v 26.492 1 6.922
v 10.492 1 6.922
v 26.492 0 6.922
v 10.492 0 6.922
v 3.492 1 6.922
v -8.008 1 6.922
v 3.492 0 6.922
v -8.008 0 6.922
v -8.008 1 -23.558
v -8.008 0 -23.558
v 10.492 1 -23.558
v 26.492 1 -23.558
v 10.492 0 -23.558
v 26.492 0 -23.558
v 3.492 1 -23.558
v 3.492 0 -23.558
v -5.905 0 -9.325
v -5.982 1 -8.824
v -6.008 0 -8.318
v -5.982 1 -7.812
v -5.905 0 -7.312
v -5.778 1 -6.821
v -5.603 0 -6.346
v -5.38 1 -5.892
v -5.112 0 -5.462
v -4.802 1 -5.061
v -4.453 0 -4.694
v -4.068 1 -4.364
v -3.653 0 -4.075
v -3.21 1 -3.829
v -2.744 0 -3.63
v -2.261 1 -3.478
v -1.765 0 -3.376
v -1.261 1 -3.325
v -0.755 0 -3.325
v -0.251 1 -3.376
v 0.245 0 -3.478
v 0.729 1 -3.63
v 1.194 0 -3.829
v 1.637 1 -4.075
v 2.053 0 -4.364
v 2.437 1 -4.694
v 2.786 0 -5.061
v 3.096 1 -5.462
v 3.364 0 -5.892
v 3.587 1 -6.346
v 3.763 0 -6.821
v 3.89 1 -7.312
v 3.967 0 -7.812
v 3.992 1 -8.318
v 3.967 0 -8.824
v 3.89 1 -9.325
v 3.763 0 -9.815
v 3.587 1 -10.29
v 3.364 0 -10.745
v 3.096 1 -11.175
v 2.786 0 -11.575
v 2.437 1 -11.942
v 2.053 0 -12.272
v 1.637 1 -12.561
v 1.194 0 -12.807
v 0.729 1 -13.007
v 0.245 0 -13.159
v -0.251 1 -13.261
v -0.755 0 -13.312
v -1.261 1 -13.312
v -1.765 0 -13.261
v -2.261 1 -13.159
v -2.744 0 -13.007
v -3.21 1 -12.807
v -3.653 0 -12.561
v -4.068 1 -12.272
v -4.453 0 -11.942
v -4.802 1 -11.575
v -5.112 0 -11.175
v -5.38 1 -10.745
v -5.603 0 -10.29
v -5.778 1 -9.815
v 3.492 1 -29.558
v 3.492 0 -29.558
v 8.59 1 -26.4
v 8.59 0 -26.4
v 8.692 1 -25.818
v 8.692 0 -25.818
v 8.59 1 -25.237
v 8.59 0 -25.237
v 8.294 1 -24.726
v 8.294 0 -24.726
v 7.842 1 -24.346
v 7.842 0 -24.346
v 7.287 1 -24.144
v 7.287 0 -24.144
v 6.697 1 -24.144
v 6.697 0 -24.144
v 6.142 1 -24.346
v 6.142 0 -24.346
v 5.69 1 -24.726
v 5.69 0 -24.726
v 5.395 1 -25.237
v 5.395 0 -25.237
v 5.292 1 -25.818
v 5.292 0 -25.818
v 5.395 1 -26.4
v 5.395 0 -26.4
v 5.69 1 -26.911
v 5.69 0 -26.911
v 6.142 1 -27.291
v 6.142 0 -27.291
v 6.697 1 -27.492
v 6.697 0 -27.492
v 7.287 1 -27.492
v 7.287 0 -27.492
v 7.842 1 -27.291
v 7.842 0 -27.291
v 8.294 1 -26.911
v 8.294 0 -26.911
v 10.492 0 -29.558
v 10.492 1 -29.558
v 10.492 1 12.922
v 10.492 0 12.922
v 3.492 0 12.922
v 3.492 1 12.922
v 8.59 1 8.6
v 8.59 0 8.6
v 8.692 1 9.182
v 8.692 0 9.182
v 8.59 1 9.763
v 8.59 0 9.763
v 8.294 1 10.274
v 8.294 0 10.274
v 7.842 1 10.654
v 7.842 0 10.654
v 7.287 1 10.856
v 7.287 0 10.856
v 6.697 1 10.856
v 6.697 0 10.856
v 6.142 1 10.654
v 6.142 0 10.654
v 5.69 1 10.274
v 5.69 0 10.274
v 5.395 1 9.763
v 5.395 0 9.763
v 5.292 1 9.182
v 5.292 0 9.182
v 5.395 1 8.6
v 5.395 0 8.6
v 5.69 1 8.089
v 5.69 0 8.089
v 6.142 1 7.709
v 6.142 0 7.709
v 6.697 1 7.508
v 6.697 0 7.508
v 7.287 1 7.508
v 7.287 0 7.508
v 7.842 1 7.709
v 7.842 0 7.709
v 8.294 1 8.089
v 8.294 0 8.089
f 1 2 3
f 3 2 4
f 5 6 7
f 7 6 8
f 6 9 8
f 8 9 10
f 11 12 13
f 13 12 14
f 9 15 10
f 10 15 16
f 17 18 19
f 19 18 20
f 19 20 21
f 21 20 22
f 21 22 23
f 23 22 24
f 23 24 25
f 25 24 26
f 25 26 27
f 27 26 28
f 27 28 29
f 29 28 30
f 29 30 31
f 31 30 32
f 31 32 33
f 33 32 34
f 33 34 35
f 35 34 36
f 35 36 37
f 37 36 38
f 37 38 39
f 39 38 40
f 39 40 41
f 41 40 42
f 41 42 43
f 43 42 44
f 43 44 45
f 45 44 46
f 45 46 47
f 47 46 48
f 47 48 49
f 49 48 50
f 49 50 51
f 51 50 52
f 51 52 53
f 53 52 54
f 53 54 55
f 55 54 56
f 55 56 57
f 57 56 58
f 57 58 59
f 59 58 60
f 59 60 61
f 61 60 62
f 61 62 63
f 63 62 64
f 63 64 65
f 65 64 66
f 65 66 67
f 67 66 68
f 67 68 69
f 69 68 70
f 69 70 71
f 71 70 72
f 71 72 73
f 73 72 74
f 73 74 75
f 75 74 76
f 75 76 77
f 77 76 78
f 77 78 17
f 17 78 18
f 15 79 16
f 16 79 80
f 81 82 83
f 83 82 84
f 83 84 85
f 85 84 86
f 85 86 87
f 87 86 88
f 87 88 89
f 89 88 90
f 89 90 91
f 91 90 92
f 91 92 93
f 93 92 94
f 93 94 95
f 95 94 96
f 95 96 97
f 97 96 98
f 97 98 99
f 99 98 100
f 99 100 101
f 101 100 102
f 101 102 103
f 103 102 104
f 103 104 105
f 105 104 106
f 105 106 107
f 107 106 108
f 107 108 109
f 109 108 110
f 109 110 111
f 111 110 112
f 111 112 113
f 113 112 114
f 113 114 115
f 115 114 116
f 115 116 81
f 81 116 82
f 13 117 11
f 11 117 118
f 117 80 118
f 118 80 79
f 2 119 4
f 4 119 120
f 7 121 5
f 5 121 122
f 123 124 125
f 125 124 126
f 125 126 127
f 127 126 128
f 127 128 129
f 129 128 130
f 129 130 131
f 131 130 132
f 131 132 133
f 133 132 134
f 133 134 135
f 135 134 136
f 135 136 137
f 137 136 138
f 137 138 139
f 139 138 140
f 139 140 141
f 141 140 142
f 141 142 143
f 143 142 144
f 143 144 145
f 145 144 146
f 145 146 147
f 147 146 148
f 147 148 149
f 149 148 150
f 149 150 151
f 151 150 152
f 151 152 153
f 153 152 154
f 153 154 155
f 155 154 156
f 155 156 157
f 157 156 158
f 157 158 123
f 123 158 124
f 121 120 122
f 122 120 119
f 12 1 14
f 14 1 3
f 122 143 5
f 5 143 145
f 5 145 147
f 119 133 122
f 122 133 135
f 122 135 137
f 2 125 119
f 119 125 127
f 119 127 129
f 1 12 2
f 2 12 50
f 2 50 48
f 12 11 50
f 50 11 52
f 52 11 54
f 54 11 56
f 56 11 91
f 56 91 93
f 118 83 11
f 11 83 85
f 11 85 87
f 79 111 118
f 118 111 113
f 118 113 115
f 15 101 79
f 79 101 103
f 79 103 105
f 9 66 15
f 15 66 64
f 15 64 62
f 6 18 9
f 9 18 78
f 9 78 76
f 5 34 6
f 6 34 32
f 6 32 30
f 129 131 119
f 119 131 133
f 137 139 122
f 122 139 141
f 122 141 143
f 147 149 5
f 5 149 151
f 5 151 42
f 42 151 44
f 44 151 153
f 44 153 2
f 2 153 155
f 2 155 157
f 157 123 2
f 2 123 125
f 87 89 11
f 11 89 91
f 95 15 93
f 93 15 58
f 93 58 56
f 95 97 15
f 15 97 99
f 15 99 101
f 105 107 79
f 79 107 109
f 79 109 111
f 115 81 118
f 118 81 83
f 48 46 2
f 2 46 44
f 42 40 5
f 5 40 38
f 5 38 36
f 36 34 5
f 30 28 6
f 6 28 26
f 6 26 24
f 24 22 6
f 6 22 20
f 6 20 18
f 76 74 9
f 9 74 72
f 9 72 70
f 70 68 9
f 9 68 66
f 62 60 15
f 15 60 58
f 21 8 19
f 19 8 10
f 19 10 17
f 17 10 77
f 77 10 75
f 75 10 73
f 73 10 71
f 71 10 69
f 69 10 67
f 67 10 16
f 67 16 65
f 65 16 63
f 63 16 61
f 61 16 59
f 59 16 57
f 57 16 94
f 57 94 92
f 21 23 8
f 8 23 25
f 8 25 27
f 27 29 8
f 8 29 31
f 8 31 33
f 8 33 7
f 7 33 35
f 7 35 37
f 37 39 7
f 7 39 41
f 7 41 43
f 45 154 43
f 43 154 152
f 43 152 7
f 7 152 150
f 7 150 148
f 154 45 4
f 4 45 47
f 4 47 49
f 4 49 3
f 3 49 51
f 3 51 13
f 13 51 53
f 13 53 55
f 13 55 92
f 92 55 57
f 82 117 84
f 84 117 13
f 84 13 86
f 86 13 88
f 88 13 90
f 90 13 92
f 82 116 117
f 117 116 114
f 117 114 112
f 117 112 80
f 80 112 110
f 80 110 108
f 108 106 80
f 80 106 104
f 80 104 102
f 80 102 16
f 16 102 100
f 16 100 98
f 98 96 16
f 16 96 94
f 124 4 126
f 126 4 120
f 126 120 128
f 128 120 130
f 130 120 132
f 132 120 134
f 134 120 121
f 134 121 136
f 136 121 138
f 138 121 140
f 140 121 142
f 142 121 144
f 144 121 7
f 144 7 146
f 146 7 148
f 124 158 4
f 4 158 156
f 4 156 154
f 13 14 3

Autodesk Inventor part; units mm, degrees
ref_plane "YZ Plane" through (0, 0, 0) normal (1, 0, 0) x (0, 1, 0)
ref_plane "XZ Plane" through (0, 0, 0) normal (0, 1, 0) x (-1, 0, 0)
ref_plane "XY Plane" through (0, 0, 0) normal (0, 0, 1) x (1, 0, 0)
sketch "Sketch1" plane through (0, 0, 0) normal (0, 1, 0) x (-1, 0, 0)
  line L0 (8.0078, 6.9217) -> (-26.4922, 6.9217)
  line L1 (-26.4922, 6.9217) -> (-26.4922, -23.5583)
  line L2 (-26.4922, -23.5583) -> (8.0078, -23.5583)
  line L3 (8.0078, -23.5583) -> (8.0078, 6.9217)
  point P0 (0, 0)
  dimension "d0" = 34.5
  dimension "d1" = 30.48
extrude "Extrusion1" add sketch "Sketch1" along normal blind 1
sketch "Sketch2" plane through (0, 1, 0) normal (0, 1, 0) x (1, 0, 0)
  line L0 (-8.0078, 23.5583) -> (-8.0078, -6.9217) projected
  line L1 (-8.0078, -6.9217) -> (-8.0078, -5.9217)
  line L2 (-8.0078, -5.9217) -> (-7.0078, -5.9217)
  line L3 (26.4922, -6.9217) -> (26.4922, 23.5583) projected
  line L4 (26.4922, 23.5583) -> (26.4922, 22.5583)
  line L5 (26.4922, 22.5583) -> (25.4922, 22.5583)
  line L6 (-7.0078, -5.9217) -> (25.4922, -5.9217)
  line L7 (25.4922, -5.9217) -> (25.4922, 22.5583)
  line L8 (25.4922, 22.5583) -> (-7.0078, 22.5583)
  line L9 (-7.0078, 22.5583) -> (-7.0078, -5.9217)
  line L10 (-8.0078, 23.5583) -> (-8.0078, -6.9217) projected
  line L11 (-8.0078, -6.9217) -> (26.4922, -6.9217) projected
  line L12 (26.4922, -6.9217) -> (26.4922, 23.5583) projected
  line L13 (26.4922, 23.5583) -> (-8.0078, 23.5583) projected
  point P0 (0, 0)
  dimension "d4" = 1
  dimension "d5" = 1
  dimension "d6" = 1
  dimension "d7" = 1
extrude "Extrusion2" add sketch "Sketch2" along normal blind 2 contours L13 L3 L5 L8 L9 L2 L0 | L2 L6 L7 L5 L3 L11 L0
sketch "Sketch3" plane through (0, 0, 0) normal (0, 1, 0) x (1, 0, 0)
  line L0 (-7.0078, -5.9217) -> (-7.0078, 22.5583) projected
  line L1 (-7.0078, 8.3183) -> (6.9922, 8.3183)
  line L2 (6.9922, 8.3183) -> (6.9922, 25.8183)
  line L3 (6.9922, 25.8183) -> (6.9922, -9.1817)
  circle A0 centre (6.9922, -9.1817) radius 1.7
  circle A1 centre (6.9922, 25.8183) radius 1.7
  line L4 (25.4922, -5.9217) -> (-7.0078, -5.9217) projected
  line L5 (6.9922, -5.9217) -> (3.4922, -5.9217)
  line L6 (3.4922, -5.9217) -> (3.4922, -12.9217)
  line L7 (3.4922, -12.9217) -> (10.4922, -12.9217)
  line L8 (10.4922, -12.9217) -> (10.4922, -5.9217)
  line L9 (-7.0078, 22.5583) -> (25.4922, 22.5583) projected
  line L10 (3.4922, 22.5583) -> (3.4922, 29.5583)
  line L11 (3.4922, 29.5583) -> (10.4922, 29.5583)
  line L12 (10.4922, 29.5583) -> (10.4922, 22.5583)
  point P0 (0, 0)
  point P1 (9.2422, 22.5583)
  dimension "d10" = 14
  dimension "d11" = 17.5
  dimension "d12" = 35
  dimension "d13" = 3.4
  dimension "d14" = 3.4
  dimension "d15" = 3.5
  dimension "d16" = 7
  dimension "d17" = 7
  dimension "d18" = 7
  dimension "d31" = 7
extrude "Extrusion3" add sketch "Sketch3" along normal blind 1 contours L4 L8 L7 L6 | L10 L11 L12 L9
sketch "Sketch4" plane through (0, 1, 0) normal (0, 1, 0) x (1, 0, 0)
  line L0 (-7.0078, -5.9217) -> (-7.0078, 22.5583) projected
  line L1 (-7.0078, 8.3183) -> (-1.0078, 8.3183)
  point P0 (0, 0)
  dimension "d21" = 6
hole "Hole1" at (-1.0078, 1, -8.3183) direction (0, -1, 0) diameter 10 end through all
sketch "Sketch5" plane through (0, 3, 0) normal (0, 1, 0) x (1, 0, 0)
  line L0 (26.4922, 23.5583) -> (-8.0078, 23.5583) projected
  line L1 (-8.0078, 23.5583) -> (-8.0078, -6.9217) projected
  line L2 (-8.0078, -6.9217) -> (26.4922, -6.9217) projected
  line L3 (26.4922, -6.9217) -> (26.4922, 23.5583) projected
  line L4 (-7.0078, 22.5583) -> (25.4922, 22.5583) projected
  line L5 (25.4922, 22.5583) -> (25.4922, -5.9217) projected
  line L6 (25.4922, -5.9217) -> (-7.0078, -5.9217) projected
  line L7 (-7.0078, -5.9217) -> (-7.0078, 22.5583) projected
  point P0 (0, 0)
extrude "Extrusion4" cut sketch "Sketch5" against normal blind 2
properties part number "lid 4.0"
